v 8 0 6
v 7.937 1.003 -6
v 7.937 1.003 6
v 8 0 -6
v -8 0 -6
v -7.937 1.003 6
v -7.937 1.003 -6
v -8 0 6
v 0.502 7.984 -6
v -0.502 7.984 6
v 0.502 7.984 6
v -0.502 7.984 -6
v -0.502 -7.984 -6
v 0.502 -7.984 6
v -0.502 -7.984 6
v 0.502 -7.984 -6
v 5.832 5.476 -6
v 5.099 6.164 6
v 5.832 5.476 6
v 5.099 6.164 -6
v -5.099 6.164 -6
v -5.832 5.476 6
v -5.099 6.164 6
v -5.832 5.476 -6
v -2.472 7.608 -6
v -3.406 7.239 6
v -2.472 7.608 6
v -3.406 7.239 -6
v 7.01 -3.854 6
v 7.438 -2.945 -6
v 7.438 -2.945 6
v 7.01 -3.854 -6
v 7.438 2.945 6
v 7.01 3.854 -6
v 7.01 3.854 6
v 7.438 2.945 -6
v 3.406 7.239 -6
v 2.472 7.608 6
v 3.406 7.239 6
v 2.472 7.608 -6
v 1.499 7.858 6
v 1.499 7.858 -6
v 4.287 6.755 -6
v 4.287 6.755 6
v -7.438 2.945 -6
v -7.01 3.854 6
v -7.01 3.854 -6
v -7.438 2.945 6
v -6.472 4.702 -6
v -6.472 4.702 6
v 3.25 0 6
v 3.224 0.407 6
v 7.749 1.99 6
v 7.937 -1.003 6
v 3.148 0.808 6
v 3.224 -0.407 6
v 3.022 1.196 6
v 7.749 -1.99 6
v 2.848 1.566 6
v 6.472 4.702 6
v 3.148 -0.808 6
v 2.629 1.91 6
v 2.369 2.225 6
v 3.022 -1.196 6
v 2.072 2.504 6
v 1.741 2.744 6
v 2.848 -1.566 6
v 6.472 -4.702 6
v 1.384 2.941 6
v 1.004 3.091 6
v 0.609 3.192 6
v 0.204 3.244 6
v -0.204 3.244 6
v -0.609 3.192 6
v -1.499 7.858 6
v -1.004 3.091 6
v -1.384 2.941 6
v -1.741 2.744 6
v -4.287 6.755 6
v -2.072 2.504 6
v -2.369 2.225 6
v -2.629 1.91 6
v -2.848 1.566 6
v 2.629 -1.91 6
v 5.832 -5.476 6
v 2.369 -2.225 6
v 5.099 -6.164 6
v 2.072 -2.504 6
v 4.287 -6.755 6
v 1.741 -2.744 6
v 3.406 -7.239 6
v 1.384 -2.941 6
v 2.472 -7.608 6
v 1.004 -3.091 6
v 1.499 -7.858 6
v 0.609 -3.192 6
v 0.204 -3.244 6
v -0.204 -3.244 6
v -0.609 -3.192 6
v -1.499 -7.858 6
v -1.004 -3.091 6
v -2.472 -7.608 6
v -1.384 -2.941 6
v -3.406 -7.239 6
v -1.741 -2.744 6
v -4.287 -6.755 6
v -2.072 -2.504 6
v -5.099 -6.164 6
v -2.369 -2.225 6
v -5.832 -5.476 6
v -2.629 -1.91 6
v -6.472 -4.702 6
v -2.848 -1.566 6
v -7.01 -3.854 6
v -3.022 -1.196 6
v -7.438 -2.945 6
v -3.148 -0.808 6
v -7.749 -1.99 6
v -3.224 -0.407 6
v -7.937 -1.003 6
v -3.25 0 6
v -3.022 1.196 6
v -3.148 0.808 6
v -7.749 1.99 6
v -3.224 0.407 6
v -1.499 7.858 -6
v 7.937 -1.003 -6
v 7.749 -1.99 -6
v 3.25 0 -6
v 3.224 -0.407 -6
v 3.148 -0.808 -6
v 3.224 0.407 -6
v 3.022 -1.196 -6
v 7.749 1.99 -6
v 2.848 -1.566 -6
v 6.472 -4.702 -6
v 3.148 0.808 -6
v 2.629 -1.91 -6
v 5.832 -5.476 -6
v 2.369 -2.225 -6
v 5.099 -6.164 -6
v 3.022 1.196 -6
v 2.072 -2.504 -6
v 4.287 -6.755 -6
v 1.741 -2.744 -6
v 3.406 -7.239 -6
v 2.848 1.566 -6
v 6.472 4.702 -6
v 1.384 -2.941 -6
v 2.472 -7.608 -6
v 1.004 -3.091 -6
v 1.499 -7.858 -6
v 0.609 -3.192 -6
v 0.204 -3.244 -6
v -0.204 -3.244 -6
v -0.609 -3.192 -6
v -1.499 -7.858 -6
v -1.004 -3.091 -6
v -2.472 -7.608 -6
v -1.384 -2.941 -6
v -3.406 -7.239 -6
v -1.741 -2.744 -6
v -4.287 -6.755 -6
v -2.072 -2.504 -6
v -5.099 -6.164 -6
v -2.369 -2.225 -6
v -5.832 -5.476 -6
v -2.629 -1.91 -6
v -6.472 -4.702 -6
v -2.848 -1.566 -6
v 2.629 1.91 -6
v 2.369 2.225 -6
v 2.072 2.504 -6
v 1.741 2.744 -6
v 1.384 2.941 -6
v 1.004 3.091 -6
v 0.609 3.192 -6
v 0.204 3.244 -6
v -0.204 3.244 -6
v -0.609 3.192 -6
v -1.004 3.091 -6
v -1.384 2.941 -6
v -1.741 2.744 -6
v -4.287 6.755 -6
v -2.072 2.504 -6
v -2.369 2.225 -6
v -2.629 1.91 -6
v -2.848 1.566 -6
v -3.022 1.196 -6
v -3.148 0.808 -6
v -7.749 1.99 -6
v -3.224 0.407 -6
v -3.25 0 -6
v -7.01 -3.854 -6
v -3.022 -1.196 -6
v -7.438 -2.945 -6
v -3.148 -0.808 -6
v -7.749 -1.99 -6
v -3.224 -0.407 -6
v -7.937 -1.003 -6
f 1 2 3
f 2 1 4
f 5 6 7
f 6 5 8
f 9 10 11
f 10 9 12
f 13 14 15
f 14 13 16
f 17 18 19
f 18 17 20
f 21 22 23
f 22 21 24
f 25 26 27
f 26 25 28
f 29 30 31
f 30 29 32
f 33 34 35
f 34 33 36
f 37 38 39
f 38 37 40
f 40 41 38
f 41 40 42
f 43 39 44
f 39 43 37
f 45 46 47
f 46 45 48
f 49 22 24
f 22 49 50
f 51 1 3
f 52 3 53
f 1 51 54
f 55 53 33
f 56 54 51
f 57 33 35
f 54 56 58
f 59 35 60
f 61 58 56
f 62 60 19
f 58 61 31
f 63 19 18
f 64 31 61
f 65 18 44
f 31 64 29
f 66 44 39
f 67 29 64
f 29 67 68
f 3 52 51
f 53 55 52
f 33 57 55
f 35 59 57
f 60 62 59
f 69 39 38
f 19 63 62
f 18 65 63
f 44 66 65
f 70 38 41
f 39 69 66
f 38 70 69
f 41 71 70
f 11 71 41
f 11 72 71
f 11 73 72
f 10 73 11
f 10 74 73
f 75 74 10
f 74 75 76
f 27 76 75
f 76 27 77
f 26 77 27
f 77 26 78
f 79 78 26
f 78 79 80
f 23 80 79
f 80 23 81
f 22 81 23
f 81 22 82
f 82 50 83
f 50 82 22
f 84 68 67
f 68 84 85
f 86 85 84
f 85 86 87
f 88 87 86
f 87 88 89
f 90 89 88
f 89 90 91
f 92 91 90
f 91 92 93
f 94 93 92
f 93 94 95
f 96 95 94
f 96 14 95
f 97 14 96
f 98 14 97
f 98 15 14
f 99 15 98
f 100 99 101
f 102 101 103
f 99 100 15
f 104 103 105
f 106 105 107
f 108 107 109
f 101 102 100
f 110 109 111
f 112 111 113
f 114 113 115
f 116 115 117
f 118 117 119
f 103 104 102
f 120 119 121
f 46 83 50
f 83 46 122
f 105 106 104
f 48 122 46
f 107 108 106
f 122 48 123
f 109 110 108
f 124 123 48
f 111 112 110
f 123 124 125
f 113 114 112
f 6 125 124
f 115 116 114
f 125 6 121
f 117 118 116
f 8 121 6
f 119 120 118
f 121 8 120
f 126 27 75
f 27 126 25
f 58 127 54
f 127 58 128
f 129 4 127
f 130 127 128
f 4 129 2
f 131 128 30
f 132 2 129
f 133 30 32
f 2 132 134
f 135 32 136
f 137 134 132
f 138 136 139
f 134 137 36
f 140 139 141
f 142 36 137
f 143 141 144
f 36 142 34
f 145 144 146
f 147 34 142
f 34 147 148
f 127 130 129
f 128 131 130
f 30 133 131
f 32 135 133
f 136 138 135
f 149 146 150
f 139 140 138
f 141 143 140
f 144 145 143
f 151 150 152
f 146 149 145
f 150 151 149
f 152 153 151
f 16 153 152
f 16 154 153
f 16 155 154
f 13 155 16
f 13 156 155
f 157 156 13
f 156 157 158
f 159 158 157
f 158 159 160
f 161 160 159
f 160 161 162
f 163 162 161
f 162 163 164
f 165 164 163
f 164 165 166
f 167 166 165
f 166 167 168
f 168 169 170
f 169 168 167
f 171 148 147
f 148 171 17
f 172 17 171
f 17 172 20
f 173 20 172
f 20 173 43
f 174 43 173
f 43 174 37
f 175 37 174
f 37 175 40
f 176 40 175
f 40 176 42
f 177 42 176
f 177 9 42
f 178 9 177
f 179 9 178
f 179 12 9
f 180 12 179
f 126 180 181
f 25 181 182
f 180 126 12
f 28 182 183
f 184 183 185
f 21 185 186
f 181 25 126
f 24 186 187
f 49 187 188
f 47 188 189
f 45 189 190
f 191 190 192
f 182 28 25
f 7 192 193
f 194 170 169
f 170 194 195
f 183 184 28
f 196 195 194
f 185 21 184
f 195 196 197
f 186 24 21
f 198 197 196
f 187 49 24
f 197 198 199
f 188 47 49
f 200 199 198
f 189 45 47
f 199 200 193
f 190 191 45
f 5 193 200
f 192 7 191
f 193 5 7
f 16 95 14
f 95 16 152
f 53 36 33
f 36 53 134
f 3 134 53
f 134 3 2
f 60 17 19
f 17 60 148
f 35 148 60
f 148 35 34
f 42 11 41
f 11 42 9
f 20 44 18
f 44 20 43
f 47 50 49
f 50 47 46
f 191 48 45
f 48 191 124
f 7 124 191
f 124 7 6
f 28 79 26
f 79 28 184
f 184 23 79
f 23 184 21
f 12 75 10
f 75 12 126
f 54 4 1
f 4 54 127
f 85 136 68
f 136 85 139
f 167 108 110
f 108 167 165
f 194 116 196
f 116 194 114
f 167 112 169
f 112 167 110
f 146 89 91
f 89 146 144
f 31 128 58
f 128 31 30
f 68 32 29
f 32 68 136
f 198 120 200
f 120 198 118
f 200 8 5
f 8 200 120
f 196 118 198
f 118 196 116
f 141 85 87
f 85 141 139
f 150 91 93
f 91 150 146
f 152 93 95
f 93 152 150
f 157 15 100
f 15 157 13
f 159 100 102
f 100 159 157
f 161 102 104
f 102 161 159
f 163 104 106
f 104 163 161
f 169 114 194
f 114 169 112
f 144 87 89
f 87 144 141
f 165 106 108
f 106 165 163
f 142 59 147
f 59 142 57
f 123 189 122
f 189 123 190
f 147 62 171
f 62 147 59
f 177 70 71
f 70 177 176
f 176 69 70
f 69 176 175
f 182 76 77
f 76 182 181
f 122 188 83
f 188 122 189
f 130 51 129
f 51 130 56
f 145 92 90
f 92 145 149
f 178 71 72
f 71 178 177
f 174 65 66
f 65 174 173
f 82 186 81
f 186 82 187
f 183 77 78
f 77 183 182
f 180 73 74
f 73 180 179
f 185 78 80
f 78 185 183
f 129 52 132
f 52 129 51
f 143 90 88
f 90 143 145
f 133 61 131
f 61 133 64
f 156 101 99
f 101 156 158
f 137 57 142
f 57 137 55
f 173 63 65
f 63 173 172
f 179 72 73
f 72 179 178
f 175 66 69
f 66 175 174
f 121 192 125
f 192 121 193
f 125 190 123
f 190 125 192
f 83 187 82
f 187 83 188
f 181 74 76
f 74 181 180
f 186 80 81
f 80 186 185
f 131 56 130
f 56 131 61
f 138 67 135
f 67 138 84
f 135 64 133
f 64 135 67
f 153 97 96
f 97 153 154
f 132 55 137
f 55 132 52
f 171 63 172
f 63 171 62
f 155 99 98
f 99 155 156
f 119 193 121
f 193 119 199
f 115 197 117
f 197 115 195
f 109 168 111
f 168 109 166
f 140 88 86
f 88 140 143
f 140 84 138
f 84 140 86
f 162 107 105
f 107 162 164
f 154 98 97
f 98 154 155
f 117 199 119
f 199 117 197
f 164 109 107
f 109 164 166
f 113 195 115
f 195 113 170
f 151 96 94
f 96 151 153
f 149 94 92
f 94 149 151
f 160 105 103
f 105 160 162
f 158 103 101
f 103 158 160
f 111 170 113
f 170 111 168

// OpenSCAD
$fn = 50;


difference() {
	union() {
		translate(v = [0, 0, -6.0000000000]) {
			cylinder(h = 12, r = 8.0000000000);
		}
	}
	union() {
		translate(v = [0, 0, -100.0000000000]) {
			cylinder(h = 200, r = 3.2500000000);
		}
	}
}
